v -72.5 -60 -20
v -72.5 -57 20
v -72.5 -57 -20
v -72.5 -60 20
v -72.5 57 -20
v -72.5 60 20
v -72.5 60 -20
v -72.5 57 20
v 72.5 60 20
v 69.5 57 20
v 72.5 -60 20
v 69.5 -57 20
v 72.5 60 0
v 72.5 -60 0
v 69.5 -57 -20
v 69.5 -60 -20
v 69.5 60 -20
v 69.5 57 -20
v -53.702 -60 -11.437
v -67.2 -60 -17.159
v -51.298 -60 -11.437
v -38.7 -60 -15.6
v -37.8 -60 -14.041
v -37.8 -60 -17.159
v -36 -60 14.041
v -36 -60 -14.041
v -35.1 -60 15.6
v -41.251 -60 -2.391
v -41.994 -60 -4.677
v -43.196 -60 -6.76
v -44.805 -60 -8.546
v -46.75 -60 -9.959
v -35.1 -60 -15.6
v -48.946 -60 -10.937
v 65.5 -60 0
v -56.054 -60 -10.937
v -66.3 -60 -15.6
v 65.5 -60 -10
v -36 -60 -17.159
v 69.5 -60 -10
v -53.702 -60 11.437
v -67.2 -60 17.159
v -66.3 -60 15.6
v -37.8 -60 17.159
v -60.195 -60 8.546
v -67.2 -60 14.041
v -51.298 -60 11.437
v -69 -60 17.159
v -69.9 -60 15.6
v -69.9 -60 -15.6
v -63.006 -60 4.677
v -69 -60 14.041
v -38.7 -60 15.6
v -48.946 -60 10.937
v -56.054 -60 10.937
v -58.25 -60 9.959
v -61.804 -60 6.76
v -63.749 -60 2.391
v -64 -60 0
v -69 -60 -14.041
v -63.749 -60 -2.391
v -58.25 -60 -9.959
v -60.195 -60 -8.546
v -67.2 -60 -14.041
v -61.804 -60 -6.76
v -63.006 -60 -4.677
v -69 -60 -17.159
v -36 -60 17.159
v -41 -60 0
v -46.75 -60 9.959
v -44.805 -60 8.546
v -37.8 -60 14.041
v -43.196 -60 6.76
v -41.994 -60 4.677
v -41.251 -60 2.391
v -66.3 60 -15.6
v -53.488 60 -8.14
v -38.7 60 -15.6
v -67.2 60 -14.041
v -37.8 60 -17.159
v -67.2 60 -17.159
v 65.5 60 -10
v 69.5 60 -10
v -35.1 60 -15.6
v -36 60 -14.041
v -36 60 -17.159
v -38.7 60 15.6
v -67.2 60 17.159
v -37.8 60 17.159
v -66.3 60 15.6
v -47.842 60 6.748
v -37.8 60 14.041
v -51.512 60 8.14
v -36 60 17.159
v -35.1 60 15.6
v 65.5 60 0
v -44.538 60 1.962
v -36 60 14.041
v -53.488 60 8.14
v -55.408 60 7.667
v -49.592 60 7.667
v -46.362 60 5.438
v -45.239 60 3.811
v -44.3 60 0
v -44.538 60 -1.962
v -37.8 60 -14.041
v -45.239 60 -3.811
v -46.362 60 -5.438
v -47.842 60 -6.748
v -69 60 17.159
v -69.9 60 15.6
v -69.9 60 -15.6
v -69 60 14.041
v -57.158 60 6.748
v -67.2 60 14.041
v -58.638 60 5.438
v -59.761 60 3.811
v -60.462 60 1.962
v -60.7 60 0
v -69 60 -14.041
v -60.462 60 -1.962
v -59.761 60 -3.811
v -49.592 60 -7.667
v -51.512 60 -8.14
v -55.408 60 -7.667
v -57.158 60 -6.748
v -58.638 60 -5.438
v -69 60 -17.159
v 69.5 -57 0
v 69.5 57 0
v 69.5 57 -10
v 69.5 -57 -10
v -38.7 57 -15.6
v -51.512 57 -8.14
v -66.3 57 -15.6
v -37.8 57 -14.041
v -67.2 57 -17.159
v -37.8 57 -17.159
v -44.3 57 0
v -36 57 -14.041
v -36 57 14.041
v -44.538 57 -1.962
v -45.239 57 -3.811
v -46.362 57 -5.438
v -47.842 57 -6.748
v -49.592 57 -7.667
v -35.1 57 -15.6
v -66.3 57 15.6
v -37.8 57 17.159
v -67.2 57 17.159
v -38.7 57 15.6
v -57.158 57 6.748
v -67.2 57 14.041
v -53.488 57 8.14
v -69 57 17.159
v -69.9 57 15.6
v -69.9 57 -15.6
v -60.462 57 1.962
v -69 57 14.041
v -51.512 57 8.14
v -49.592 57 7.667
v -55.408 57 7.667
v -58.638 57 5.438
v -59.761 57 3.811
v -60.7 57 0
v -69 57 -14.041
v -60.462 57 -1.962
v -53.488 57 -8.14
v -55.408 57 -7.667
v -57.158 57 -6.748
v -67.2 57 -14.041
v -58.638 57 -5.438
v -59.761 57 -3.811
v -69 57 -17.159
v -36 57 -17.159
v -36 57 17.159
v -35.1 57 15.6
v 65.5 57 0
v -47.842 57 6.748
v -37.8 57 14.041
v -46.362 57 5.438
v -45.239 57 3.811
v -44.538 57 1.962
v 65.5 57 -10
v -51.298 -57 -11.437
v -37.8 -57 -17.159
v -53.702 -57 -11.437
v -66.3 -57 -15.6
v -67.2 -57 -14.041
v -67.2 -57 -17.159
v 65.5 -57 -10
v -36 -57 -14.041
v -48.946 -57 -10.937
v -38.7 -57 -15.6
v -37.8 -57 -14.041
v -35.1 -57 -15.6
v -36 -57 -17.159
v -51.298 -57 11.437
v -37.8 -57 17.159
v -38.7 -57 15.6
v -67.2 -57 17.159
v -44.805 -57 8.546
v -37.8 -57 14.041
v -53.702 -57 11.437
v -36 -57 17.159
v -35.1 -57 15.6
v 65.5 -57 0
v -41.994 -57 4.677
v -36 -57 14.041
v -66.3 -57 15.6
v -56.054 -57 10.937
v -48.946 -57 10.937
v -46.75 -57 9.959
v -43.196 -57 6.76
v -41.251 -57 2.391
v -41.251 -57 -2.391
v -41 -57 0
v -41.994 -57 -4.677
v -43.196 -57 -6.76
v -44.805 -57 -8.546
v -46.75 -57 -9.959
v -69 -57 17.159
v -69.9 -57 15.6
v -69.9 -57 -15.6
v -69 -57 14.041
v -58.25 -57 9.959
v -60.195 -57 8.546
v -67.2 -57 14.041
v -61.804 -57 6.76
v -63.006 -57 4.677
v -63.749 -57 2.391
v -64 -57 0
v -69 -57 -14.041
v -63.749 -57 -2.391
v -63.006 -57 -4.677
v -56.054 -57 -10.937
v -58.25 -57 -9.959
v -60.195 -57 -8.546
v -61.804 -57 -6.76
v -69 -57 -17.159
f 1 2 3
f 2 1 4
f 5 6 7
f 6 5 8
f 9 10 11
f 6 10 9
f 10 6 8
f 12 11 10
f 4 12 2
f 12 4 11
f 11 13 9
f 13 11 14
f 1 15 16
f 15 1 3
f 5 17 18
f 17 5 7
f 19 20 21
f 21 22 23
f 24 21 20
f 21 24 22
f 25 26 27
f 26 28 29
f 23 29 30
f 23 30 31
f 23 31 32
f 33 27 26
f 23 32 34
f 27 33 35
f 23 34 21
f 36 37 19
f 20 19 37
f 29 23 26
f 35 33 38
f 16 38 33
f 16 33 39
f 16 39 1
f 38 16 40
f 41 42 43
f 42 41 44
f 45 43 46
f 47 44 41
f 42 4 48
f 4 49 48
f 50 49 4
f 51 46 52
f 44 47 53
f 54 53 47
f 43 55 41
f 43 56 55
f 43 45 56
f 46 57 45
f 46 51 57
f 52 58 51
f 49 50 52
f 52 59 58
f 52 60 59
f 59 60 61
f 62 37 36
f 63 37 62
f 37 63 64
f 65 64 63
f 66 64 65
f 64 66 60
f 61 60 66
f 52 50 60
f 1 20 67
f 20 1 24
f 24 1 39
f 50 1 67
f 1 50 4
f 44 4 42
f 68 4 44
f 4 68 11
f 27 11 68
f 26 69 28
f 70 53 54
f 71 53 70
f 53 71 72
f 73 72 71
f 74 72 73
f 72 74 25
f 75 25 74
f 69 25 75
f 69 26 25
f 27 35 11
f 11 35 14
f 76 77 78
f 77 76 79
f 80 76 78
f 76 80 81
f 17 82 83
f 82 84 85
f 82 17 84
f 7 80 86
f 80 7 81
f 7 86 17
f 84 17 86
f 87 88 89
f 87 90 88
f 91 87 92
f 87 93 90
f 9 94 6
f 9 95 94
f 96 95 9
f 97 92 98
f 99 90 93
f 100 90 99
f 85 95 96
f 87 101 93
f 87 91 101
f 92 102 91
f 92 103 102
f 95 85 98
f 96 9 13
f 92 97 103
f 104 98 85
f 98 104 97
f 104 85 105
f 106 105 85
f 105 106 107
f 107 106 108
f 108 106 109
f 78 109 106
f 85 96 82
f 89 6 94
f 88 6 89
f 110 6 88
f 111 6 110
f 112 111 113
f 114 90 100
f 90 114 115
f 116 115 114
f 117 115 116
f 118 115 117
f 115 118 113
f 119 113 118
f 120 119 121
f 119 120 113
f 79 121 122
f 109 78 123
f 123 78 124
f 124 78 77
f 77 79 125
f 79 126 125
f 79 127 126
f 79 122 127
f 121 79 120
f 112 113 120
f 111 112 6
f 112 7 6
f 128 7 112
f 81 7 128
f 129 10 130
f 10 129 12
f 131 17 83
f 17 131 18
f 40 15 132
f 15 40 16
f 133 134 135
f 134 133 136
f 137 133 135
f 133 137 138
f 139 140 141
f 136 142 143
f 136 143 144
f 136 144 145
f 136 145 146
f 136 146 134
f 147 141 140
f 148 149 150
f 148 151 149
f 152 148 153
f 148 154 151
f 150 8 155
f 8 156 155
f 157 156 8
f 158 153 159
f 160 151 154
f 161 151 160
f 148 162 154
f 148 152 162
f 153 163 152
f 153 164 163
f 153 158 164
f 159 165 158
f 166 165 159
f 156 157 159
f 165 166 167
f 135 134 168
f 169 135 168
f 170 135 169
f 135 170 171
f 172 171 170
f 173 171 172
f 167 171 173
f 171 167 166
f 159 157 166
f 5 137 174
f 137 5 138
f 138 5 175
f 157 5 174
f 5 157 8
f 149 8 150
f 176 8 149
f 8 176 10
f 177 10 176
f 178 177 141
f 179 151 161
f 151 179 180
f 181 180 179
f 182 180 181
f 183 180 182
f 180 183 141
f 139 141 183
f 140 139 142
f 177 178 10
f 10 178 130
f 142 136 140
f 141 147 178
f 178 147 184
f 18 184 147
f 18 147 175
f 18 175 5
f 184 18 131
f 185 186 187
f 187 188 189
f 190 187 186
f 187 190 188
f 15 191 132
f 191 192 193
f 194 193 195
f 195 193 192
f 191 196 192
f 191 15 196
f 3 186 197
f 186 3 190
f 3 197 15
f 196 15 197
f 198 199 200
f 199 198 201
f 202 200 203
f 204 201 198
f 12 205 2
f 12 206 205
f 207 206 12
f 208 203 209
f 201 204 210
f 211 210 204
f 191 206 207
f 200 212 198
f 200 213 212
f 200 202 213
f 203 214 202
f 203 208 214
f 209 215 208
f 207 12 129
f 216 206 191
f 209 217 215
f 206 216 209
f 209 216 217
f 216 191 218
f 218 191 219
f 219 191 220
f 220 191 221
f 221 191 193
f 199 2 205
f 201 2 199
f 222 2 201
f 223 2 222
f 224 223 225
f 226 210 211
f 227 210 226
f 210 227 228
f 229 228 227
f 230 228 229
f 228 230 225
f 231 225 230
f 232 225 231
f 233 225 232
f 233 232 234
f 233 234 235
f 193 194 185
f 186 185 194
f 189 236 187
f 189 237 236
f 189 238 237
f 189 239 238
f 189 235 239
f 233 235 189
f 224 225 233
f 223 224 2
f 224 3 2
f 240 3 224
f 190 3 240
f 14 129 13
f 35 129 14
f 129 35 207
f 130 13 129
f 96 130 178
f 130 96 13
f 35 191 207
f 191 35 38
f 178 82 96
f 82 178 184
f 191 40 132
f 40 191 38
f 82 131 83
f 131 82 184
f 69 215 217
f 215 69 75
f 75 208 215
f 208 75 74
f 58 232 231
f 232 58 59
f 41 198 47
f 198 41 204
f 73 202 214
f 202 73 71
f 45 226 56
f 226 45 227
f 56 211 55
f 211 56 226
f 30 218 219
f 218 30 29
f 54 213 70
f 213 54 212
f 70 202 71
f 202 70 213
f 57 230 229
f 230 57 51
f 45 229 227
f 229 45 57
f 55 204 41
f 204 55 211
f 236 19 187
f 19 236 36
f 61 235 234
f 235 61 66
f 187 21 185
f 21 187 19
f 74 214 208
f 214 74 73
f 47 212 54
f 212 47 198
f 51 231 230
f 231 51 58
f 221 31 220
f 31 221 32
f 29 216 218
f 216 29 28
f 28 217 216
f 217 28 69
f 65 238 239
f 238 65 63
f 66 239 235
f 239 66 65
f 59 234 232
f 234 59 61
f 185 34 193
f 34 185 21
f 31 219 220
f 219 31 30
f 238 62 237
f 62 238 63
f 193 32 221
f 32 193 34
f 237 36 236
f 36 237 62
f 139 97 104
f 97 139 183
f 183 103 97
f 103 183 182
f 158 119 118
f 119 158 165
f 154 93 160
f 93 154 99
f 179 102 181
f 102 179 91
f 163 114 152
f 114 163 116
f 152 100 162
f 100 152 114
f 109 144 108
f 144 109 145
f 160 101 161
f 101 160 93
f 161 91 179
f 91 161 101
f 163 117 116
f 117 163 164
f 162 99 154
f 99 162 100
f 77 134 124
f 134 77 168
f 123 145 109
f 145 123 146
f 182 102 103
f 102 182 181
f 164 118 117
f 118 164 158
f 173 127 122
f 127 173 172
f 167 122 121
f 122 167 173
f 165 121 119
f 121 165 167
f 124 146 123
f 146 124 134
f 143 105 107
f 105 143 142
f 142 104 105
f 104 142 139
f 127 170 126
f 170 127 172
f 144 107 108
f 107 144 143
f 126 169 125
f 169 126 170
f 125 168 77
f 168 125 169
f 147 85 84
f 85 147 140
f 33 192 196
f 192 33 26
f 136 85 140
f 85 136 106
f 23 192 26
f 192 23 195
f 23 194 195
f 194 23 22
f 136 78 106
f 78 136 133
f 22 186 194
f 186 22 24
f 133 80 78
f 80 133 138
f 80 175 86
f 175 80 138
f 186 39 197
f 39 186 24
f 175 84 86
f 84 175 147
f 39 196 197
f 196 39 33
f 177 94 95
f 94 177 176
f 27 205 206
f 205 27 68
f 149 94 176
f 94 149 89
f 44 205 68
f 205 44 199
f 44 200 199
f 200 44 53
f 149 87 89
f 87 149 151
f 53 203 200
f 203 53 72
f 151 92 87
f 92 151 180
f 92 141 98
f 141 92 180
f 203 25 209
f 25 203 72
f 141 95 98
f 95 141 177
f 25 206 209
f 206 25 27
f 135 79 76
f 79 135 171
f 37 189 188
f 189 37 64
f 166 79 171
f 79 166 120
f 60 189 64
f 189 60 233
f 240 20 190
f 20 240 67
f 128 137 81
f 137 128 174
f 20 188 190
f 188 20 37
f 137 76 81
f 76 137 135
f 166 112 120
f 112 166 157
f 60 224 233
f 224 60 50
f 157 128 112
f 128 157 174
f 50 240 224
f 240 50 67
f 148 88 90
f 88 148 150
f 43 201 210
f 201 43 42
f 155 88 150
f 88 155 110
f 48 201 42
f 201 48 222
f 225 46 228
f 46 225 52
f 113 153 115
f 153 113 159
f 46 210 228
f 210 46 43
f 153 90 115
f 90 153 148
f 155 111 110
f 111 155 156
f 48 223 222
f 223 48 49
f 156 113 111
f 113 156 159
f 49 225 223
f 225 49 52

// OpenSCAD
difference () {
  cube ([145, 120, 40], center=true);
  translate ([-1.5, 0, 0]) {
    cube ([142, 114, 40], center=true);
  }
  translate ([71, 0, -10]) {
    cube ([3, 120, 20], center=true);
  }
  translate ([67.5, 0, -5]) {
    cube ([4, 120, 10], center=true);
  }
  translate ([-52.5, -58.5, 0]) {
    rotate (a=90.0, v=[1, 0, 0]) {
      cylinder (h=3, r=11.5, center=true);
    }
  }
  translate ([-52.5, 58.5, 0]) {
    rotate (a=90.0, v=[1, 0, 0]) {
      cylinder (h=3, r=8.2, center=true);
    }
  }
  translate ([-36.9, 0, -15.6]) {
    rotate (a=90.0, v=[1, 0, 0]) {
      cylinder (h=120, r=1.8, center=true);
    }
  }
  translate ([-36.9, 0, 15.6]) {
    rotate (a=90.0, v=[1, 0, 0]) {
      cylinder (h=120, r=1.8, center=true);
    }
  }
  translate ([-68.1, 0, -15.6]) {
    rotate (a=90.0, v=[1, 0, 0]) {
      cylinder (h=120, r=1.8, center=true);
    }
  }
  translate ([-68.1, 0, 15.6]) {
    rotate (a=90.0, v=[1, 0, 0]) {
      cylinder (h=120, r=1.8, center=true);
    }
  }
}
